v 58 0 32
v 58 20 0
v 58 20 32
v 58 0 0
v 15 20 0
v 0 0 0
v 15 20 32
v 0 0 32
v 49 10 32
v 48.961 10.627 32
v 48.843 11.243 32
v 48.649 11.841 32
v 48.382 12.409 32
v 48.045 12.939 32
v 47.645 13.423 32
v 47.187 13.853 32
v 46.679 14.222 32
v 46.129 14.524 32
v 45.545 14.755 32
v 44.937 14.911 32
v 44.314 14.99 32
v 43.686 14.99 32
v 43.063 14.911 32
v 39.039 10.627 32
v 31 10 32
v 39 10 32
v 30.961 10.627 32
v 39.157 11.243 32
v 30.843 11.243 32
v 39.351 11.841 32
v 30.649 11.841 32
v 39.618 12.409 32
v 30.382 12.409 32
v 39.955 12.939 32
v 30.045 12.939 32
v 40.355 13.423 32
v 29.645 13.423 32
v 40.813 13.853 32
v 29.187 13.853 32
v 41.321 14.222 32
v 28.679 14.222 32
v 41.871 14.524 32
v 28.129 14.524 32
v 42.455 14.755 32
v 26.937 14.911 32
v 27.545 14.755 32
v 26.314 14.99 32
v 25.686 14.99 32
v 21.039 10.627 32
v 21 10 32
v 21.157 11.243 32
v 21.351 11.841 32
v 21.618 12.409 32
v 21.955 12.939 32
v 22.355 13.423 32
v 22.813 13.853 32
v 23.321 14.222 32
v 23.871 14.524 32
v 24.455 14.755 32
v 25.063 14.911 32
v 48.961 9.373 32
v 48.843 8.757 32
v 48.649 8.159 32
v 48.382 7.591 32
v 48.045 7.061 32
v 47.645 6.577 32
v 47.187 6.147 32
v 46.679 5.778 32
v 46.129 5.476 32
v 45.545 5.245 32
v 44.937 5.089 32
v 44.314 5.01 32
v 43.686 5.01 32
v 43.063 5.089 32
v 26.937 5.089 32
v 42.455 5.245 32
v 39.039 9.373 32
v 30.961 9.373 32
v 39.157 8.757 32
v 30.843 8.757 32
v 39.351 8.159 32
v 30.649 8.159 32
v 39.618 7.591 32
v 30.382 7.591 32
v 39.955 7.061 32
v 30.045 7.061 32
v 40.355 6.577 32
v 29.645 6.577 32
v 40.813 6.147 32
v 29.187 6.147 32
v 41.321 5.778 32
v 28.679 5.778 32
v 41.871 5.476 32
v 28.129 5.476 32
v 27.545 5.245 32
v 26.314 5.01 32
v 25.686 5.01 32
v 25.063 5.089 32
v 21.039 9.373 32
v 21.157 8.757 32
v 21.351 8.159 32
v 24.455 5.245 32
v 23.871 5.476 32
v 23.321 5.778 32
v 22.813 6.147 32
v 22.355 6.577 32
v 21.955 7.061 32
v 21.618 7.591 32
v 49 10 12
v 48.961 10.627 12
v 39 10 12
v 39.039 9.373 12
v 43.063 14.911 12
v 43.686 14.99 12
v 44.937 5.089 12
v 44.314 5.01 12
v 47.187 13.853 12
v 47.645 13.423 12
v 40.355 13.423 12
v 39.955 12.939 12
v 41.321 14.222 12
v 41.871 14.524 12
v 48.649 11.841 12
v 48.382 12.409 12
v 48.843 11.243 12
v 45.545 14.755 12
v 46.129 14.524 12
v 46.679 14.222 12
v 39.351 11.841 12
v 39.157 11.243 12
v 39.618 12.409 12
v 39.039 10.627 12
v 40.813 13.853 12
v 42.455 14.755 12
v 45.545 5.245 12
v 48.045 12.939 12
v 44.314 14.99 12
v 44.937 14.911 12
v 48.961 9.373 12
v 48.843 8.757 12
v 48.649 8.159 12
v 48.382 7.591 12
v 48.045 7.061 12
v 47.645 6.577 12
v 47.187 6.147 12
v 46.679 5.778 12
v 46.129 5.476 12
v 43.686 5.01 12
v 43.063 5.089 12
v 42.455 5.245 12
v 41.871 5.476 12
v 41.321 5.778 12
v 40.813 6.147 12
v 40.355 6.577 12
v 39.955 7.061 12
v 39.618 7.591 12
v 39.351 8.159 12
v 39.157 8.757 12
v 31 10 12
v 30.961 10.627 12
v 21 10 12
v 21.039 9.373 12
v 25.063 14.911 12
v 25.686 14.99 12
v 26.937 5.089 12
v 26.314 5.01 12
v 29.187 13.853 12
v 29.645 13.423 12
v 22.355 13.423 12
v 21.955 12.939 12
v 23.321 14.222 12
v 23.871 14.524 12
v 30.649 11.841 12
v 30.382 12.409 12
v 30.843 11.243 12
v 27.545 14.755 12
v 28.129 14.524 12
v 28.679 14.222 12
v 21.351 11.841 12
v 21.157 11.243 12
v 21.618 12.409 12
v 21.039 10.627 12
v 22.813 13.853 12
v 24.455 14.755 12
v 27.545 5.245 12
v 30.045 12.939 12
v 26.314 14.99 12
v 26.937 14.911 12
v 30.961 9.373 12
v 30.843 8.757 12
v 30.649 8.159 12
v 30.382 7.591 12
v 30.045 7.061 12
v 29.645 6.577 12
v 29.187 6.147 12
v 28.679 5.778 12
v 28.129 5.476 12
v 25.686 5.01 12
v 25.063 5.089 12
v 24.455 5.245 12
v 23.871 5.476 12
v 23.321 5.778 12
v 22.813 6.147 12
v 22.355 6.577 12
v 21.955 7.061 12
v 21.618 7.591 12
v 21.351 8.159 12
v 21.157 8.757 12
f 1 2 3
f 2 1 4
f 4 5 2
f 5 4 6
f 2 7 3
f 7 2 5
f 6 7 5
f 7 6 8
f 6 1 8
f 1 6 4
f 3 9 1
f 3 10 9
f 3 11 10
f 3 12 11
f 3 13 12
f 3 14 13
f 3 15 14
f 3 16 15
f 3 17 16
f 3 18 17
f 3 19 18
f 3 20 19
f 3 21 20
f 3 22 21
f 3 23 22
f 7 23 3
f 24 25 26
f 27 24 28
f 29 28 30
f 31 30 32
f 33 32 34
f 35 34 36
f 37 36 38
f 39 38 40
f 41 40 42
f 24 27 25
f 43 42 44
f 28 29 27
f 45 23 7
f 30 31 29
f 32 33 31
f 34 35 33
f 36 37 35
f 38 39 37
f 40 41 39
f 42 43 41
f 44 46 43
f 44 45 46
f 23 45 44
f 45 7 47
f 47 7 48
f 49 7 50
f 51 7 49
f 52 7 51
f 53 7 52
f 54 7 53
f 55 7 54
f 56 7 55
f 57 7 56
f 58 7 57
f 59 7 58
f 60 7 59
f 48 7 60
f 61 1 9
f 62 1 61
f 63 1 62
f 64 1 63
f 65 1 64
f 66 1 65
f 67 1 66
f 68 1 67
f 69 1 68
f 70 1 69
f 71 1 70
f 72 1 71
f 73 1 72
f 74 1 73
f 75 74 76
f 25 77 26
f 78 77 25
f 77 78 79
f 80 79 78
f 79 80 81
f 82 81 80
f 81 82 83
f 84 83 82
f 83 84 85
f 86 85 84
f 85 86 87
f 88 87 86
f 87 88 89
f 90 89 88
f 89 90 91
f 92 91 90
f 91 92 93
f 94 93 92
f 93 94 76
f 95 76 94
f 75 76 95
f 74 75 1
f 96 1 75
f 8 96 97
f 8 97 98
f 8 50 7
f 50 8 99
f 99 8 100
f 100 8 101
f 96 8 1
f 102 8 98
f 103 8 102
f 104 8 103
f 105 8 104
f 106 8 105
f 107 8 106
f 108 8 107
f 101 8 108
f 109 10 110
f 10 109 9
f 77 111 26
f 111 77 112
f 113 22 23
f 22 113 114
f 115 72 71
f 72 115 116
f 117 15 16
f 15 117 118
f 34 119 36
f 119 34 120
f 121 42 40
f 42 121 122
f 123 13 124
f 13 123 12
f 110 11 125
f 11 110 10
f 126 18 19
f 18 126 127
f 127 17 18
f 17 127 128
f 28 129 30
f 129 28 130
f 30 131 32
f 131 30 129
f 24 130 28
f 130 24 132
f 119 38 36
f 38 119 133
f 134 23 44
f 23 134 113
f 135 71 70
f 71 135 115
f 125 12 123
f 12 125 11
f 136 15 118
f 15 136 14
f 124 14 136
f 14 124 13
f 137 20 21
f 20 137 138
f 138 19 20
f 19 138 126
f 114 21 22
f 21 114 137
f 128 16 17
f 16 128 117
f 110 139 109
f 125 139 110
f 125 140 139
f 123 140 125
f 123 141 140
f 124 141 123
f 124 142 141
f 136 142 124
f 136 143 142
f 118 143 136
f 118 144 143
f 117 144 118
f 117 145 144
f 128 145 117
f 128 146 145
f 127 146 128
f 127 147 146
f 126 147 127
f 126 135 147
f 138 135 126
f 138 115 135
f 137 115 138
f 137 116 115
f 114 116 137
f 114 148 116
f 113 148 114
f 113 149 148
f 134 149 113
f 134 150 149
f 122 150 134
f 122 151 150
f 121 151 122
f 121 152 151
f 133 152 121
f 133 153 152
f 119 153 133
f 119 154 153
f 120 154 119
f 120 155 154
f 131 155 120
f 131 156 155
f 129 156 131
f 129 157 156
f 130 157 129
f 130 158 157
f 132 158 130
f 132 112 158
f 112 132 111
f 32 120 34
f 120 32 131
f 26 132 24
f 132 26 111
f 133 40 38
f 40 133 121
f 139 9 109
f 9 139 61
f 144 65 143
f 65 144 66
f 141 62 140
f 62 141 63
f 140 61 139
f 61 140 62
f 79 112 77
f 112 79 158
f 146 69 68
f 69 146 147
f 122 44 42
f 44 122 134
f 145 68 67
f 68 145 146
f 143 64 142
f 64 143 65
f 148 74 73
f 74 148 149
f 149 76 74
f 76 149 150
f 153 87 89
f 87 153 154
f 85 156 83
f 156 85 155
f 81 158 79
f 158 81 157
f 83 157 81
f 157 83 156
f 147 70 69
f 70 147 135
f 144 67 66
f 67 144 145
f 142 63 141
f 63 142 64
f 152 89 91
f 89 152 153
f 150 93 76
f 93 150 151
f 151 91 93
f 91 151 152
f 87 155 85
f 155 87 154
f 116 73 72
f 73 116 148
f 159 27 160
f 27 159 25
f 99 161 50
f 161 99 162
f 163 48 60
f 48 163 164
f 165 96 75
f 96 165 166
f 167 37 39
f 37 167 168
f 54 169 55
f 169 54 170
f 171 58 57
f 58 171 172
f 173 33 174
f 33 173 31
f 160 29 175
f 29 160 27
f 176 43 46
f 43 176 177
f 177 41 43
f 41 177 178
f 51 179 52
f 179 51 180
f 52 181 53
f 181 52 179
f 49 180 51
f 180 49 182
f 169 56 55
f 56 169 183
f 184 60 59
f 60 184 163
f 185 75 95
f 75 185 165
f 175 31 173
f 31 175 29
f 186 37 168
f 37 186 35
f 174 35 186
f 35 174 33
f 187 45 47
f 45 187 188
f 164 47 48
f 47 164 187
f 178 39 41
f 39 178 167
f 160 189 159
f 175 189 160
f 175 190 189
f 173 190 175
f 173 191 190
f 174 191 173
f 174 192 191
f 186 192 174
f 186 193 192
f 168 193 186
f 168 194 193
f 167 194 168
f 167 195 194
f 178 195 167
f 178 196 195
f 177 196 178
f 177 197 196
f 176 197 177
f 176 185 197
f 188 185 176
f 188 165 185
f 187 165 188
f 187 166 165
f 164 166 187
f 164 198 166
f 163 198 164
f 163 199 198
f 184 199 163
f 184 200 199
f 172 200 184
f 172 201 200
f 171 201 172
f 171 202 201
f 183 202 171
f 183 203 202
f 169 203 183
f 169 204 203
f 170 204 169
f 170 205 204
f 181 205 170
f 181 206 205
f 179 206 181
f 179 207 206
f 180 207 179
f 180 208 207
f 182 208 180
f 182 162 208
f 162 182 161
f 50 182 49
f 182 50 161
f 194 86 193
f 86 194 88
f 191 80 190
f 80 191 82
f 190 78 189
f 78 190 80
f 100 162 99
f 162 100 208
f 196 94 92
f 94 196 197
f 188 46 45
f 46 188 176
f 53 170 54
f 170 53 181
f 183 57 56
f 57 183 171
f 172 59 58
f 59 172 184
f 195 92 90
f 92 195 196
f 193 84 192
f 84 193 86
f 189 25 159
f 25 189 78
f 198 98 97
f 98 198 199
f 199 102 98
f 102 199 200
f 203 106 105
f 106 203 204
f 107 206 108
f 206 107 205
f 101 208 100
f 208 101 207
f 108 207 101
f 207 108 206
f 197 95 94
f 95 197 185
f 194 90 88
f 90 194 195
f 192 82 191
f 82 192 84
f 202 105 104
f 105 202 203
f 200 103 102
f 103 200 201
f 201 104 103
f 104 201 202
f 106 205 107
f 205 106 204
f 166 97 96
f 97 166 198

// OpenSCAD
$fn = 50;

difference() {
    linear_extrude(height=32)
    polygon([
        [0,0],
        [58,0],
        [58,20],
        [15,20]
    ]);
    
    translate([44,10,12])
    cylinder(d=10,h=34);
    
    translate([26,10,12])
    cylinder(d=10,h=34);
}
